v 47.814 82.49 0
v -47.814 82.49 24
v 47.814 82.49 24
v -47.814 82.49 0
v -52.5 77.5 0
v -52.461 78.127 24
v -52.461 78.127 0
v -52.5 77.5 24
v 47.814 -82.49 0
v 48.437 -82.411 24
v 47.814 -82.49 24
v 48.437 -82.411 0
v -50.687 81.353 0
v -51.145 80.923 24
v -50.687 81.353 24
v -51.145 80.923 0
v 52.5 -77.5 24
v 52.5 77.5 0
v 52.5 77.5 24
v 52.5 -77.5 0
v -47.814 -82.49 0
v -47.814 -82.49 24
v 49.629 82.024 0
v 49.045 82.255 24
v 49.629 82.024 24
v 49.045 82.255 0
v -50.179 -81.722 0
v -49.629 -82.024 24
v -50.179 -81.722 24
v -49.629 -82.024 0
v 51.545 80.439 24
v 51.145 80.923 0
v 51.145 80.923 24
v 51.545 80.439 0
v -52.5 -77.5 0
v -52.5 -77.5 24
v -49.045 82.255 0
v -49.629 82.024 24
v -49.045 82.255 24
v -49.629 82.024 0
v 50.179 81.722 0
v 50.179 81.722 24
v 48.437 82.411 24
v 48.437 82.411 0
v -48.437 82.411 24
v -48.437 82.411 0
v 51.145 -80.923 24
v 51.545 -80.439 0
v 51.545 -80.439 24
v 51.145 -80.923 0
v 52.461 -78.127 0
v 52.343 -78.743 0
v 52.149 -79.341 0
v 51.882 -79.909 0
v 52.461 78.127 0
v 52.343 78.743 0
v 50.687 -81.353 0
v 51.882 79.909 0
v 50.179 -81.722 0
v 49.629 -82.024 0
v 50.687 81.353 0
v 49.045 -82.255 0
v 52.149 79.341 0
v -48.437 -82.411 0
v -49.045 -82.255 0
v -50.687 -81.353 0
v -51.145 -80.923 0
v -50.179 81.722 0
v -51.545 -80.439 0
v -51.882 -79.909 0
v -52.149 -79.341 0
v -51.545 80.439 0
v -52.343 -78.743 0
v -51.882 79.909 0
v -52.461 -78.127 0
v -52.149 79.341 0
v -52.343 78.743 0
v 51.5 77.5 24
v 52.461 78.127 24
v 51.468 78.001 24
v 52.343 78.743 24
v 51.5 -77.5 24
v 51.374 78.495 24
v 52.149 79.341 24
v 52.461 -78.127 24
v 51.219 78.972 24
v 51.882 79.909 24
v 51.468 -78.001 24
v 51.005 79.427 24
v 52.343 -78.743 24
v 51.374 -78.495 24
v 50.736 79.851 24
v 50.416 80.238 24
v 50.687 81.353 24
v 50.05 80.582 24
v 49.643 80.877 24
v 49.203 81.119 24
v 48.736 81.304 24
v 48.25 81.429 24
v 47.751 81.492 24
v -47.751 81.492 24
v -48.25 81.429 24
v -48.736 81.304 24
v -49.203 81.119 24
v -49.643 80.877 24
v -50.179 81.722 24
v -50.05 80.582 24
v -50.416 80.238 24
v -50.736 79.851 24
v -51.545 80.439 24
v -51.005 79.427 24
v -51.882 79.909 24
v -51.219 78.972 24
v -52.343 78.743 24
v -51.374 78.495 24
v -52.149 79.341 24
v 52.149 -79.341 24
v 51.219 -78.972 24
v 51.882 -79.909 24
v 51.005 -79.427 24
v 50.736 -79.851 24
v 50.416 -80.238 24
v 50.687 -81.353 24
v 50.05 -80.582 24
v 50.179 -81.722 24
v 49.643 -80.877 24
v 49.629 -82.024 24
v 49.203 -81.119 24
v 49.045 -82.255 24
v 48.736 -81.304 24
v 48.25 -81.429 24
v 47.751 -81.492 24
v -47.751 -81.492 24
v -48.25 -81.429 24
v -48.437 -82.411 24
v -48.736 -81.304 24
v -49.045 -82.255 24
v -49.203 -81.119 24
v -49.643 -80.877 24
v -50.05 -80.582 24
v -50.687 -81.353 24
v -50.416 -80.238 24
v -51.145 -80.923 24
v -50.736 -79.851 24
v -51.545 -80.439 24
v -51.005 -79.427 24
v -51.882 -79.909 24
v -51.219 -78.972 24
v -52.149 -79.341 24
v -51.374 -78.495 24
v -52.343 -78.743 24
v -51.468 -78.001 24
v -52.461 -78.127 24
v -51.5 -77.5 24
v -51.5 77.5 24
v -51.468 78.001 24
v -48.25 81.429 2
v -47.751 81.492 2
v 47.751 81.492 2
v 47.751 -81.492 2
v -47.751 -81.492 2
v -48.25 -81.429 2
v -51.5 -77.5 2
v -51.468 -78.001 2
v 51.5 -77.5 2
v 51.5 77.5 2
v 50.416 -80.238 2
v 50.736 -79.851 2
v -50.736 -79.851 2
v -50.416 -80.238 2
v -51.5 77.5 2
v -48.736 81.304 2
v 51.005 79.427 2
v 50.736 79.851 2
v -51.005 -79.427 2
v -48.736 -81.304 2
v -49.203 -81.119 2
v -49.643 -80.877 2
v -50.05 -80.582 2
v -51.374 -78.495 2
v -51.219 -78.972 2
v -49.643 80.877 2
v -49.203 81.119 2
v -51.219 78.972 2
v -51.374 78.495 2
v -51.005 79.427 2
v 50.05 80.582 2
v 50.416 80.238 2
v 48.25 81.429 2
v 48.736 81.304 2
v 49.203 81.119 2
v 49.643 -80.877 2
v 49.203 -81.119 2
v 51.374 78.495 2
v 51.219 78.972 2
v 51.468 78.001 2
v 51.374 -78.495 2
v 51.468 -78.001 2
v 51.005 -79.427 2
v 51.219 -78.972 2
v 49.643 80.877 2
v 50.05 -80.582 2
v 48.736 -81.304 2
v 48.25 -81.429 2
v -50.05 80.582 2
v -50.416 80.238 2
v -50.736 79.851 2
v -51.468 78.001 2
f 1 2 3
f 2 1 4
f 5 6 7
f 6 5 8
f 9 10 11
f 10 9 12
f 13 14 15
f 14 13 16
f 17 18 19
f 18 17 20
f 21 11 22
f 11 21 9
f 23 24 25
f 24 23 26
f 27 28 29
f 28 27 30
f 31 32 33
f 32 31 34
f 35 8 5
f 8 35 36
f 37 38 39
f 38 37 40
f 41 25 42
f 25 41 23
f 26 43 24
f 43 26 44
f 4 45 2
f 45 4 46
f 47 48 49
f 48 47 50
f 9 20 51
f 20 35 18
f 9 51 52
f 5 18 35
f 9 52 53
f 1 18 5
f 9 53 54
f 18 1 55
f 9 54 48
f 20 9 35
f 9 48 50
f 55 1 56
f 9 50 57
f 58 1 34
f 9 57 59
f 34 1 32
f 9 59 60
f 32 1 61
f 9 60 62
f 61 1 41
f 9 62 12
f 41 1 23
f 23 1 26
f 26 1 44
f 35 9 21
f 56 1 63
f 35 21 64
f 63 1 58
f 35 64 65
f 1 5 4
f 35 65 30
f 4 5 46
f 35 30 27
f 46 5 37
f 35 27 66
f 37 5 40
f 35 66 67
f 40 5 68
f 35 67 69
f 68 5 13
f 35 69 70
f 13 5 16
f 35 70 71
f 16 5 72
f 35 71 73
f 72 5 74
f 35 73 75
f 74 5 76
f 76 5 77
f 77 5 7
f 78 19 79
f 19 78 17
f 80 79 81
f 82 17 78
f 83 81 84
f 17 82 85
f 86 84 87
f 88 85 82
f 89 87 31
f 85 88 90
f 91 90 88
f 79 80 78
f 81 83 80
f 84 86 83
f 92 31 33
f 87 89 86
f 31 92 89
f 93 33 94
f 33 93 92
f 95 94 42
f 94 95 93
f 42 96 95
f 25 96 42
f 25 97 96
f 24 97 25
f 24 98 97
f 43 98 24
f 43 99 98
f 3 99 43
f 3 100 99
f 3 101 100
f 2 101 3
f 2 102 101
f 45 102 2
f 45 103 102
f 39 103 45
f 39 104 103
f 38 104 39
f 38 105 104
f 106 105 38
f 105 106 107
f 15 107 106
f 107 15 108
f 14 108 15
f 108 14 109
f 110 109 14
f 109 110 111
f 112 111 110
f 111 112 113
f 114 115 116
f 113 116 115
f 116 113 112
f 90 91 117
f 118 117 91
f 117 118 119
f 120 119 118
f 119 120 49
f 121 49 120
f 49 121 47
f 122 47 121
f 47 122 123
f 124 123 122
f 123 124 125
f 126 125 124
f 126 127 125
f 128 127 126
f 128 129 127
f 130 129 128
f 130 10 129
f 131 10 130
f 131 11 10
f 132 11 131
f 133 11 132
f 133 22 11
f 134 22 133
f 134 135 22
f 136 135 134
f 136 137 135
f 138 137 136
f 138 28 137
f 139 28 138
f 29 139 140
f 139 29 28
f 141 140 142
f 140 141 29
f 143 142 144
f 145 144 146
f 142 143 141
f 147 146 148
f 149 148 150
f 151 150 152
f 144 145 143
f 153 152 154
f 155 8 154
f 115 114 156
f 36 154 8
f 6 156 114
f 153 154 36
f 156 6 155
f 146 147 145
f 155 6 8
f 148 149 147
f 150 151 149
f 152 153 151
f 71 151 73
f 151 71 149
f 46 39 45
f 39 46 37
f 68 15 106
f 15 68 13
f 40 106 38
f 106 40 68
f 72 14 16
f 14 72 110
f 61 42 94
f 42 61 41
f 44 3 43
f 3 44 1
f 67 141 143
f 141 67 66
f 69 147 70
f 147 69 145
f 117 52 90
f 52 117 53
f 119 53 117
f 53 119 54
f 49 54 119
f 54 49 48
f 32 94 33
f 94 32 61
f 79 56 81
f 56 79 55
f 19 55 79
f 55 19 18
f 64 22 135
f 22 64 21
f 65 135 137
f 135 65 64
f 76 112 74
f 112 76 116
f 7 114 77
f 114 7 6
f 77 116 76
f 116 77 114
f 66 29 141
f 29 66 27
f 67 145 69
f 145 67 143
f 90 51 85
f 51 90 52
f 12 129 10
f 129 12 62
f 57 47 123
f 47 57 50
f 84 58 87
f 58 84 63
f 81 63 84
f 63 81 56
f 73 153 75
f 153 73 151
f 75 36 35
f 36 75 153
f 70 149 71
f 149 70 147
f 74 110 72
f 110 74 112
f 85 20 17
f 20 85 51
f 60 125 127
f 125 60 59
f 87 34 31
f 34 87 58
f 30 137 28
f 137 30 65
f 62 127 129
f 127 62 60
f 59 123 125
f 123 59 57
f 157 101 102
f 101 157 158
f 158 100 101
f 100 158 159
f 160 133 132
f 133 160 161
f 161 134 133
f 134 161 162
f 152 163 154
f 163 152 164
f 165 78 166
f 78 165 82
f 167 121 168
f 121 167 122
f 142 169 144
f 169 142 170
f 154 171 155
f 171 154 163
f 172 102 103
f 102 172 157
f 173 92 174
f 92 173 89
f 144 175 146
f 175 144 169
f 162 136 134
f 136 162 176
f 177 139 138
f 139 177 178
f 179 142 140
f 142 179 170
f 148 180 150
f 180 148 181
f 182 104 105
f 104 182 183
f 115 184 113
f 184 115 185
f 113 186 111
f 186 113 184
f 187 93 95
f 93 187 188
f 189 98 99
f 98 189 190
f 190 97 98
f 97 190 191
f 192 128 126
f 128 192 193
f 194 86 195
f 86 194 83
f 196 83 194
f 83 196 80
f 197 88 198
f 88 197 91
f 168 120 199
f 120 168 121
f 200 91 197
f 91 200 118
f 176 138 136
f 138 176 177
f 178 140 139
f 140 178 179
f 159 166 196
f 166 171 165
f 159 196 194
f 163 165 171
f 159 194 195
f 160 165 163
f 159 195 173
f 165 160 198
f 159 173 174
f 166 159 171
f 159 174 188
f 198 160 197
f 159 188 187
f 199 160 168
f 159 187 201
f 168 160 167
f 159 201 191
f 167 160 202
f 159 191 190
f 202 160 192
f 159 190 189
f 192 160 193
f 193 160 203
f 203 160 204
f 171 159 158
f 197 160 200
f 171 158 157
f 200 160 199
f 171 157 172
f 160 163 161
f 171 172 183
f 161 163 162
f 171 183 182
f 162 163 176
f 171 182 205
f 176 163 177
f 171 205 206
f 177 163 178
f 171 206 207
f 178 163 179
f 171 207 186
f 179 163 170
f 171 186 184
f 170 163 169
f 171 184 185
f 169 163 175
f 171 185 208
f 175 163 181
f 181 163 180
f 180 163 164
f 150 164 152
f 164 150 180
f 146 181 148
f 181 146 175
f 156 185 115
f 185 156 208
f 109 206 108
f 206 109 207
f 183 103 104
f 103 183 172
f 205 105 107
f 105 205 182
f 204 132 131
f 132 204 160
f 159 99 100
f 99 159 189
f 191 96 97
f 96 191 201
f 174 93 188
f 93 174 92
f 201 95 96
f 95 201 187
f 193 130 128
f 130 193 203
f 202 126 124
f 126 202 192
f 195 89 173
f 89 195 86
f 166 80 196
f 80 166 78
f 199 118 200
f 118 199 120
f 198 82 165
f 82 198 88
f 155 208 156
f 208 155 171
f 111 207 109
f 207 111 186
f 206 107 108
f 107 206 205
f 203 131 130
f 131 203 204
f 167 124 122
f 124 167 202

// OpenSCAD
$fn = 50;


difference() {
	union() {
		hull() {
			translate(v = [-47.5000000000, 77.5000000000, 0]) {
				cylinder(h = 24, r = 5);
			}
			translate(v = [47.5000000000, 77.5000000000, 0]) {
				cylinder(h = 24, r = 5);
			}
			translate(v = [-47.5000000000, -77.5000000000, 0]) {
				cylinder(h = 24, r = 5);
			}
			translate(v = [47.5000000000, -77.5000000000, 0]) {
				cylinder(h = 24, r = 5);
			}
		}
	}
	union() {
		translate(v = [0, 0, 2]) {
			hull() {
				translate(v = [-47.5000000000, 77.5000000000, 0]) {
					cylinder(h = 22, r = 4);
				}
				translate(v = [47.5000000000, 77.5000000000, 0]) {
					cylinder(h = 22, r = 4);
				}
				translate(v = [-47.5000000000, -77.5000000000, 0]) {
					cylinder(h = 22, r = 4);
				}
				translate(v = [47.5000000000, -77.5000000000, 0]) {
					cylinder(h = 22, r = 4);
				}
			}
		}
	}
}
